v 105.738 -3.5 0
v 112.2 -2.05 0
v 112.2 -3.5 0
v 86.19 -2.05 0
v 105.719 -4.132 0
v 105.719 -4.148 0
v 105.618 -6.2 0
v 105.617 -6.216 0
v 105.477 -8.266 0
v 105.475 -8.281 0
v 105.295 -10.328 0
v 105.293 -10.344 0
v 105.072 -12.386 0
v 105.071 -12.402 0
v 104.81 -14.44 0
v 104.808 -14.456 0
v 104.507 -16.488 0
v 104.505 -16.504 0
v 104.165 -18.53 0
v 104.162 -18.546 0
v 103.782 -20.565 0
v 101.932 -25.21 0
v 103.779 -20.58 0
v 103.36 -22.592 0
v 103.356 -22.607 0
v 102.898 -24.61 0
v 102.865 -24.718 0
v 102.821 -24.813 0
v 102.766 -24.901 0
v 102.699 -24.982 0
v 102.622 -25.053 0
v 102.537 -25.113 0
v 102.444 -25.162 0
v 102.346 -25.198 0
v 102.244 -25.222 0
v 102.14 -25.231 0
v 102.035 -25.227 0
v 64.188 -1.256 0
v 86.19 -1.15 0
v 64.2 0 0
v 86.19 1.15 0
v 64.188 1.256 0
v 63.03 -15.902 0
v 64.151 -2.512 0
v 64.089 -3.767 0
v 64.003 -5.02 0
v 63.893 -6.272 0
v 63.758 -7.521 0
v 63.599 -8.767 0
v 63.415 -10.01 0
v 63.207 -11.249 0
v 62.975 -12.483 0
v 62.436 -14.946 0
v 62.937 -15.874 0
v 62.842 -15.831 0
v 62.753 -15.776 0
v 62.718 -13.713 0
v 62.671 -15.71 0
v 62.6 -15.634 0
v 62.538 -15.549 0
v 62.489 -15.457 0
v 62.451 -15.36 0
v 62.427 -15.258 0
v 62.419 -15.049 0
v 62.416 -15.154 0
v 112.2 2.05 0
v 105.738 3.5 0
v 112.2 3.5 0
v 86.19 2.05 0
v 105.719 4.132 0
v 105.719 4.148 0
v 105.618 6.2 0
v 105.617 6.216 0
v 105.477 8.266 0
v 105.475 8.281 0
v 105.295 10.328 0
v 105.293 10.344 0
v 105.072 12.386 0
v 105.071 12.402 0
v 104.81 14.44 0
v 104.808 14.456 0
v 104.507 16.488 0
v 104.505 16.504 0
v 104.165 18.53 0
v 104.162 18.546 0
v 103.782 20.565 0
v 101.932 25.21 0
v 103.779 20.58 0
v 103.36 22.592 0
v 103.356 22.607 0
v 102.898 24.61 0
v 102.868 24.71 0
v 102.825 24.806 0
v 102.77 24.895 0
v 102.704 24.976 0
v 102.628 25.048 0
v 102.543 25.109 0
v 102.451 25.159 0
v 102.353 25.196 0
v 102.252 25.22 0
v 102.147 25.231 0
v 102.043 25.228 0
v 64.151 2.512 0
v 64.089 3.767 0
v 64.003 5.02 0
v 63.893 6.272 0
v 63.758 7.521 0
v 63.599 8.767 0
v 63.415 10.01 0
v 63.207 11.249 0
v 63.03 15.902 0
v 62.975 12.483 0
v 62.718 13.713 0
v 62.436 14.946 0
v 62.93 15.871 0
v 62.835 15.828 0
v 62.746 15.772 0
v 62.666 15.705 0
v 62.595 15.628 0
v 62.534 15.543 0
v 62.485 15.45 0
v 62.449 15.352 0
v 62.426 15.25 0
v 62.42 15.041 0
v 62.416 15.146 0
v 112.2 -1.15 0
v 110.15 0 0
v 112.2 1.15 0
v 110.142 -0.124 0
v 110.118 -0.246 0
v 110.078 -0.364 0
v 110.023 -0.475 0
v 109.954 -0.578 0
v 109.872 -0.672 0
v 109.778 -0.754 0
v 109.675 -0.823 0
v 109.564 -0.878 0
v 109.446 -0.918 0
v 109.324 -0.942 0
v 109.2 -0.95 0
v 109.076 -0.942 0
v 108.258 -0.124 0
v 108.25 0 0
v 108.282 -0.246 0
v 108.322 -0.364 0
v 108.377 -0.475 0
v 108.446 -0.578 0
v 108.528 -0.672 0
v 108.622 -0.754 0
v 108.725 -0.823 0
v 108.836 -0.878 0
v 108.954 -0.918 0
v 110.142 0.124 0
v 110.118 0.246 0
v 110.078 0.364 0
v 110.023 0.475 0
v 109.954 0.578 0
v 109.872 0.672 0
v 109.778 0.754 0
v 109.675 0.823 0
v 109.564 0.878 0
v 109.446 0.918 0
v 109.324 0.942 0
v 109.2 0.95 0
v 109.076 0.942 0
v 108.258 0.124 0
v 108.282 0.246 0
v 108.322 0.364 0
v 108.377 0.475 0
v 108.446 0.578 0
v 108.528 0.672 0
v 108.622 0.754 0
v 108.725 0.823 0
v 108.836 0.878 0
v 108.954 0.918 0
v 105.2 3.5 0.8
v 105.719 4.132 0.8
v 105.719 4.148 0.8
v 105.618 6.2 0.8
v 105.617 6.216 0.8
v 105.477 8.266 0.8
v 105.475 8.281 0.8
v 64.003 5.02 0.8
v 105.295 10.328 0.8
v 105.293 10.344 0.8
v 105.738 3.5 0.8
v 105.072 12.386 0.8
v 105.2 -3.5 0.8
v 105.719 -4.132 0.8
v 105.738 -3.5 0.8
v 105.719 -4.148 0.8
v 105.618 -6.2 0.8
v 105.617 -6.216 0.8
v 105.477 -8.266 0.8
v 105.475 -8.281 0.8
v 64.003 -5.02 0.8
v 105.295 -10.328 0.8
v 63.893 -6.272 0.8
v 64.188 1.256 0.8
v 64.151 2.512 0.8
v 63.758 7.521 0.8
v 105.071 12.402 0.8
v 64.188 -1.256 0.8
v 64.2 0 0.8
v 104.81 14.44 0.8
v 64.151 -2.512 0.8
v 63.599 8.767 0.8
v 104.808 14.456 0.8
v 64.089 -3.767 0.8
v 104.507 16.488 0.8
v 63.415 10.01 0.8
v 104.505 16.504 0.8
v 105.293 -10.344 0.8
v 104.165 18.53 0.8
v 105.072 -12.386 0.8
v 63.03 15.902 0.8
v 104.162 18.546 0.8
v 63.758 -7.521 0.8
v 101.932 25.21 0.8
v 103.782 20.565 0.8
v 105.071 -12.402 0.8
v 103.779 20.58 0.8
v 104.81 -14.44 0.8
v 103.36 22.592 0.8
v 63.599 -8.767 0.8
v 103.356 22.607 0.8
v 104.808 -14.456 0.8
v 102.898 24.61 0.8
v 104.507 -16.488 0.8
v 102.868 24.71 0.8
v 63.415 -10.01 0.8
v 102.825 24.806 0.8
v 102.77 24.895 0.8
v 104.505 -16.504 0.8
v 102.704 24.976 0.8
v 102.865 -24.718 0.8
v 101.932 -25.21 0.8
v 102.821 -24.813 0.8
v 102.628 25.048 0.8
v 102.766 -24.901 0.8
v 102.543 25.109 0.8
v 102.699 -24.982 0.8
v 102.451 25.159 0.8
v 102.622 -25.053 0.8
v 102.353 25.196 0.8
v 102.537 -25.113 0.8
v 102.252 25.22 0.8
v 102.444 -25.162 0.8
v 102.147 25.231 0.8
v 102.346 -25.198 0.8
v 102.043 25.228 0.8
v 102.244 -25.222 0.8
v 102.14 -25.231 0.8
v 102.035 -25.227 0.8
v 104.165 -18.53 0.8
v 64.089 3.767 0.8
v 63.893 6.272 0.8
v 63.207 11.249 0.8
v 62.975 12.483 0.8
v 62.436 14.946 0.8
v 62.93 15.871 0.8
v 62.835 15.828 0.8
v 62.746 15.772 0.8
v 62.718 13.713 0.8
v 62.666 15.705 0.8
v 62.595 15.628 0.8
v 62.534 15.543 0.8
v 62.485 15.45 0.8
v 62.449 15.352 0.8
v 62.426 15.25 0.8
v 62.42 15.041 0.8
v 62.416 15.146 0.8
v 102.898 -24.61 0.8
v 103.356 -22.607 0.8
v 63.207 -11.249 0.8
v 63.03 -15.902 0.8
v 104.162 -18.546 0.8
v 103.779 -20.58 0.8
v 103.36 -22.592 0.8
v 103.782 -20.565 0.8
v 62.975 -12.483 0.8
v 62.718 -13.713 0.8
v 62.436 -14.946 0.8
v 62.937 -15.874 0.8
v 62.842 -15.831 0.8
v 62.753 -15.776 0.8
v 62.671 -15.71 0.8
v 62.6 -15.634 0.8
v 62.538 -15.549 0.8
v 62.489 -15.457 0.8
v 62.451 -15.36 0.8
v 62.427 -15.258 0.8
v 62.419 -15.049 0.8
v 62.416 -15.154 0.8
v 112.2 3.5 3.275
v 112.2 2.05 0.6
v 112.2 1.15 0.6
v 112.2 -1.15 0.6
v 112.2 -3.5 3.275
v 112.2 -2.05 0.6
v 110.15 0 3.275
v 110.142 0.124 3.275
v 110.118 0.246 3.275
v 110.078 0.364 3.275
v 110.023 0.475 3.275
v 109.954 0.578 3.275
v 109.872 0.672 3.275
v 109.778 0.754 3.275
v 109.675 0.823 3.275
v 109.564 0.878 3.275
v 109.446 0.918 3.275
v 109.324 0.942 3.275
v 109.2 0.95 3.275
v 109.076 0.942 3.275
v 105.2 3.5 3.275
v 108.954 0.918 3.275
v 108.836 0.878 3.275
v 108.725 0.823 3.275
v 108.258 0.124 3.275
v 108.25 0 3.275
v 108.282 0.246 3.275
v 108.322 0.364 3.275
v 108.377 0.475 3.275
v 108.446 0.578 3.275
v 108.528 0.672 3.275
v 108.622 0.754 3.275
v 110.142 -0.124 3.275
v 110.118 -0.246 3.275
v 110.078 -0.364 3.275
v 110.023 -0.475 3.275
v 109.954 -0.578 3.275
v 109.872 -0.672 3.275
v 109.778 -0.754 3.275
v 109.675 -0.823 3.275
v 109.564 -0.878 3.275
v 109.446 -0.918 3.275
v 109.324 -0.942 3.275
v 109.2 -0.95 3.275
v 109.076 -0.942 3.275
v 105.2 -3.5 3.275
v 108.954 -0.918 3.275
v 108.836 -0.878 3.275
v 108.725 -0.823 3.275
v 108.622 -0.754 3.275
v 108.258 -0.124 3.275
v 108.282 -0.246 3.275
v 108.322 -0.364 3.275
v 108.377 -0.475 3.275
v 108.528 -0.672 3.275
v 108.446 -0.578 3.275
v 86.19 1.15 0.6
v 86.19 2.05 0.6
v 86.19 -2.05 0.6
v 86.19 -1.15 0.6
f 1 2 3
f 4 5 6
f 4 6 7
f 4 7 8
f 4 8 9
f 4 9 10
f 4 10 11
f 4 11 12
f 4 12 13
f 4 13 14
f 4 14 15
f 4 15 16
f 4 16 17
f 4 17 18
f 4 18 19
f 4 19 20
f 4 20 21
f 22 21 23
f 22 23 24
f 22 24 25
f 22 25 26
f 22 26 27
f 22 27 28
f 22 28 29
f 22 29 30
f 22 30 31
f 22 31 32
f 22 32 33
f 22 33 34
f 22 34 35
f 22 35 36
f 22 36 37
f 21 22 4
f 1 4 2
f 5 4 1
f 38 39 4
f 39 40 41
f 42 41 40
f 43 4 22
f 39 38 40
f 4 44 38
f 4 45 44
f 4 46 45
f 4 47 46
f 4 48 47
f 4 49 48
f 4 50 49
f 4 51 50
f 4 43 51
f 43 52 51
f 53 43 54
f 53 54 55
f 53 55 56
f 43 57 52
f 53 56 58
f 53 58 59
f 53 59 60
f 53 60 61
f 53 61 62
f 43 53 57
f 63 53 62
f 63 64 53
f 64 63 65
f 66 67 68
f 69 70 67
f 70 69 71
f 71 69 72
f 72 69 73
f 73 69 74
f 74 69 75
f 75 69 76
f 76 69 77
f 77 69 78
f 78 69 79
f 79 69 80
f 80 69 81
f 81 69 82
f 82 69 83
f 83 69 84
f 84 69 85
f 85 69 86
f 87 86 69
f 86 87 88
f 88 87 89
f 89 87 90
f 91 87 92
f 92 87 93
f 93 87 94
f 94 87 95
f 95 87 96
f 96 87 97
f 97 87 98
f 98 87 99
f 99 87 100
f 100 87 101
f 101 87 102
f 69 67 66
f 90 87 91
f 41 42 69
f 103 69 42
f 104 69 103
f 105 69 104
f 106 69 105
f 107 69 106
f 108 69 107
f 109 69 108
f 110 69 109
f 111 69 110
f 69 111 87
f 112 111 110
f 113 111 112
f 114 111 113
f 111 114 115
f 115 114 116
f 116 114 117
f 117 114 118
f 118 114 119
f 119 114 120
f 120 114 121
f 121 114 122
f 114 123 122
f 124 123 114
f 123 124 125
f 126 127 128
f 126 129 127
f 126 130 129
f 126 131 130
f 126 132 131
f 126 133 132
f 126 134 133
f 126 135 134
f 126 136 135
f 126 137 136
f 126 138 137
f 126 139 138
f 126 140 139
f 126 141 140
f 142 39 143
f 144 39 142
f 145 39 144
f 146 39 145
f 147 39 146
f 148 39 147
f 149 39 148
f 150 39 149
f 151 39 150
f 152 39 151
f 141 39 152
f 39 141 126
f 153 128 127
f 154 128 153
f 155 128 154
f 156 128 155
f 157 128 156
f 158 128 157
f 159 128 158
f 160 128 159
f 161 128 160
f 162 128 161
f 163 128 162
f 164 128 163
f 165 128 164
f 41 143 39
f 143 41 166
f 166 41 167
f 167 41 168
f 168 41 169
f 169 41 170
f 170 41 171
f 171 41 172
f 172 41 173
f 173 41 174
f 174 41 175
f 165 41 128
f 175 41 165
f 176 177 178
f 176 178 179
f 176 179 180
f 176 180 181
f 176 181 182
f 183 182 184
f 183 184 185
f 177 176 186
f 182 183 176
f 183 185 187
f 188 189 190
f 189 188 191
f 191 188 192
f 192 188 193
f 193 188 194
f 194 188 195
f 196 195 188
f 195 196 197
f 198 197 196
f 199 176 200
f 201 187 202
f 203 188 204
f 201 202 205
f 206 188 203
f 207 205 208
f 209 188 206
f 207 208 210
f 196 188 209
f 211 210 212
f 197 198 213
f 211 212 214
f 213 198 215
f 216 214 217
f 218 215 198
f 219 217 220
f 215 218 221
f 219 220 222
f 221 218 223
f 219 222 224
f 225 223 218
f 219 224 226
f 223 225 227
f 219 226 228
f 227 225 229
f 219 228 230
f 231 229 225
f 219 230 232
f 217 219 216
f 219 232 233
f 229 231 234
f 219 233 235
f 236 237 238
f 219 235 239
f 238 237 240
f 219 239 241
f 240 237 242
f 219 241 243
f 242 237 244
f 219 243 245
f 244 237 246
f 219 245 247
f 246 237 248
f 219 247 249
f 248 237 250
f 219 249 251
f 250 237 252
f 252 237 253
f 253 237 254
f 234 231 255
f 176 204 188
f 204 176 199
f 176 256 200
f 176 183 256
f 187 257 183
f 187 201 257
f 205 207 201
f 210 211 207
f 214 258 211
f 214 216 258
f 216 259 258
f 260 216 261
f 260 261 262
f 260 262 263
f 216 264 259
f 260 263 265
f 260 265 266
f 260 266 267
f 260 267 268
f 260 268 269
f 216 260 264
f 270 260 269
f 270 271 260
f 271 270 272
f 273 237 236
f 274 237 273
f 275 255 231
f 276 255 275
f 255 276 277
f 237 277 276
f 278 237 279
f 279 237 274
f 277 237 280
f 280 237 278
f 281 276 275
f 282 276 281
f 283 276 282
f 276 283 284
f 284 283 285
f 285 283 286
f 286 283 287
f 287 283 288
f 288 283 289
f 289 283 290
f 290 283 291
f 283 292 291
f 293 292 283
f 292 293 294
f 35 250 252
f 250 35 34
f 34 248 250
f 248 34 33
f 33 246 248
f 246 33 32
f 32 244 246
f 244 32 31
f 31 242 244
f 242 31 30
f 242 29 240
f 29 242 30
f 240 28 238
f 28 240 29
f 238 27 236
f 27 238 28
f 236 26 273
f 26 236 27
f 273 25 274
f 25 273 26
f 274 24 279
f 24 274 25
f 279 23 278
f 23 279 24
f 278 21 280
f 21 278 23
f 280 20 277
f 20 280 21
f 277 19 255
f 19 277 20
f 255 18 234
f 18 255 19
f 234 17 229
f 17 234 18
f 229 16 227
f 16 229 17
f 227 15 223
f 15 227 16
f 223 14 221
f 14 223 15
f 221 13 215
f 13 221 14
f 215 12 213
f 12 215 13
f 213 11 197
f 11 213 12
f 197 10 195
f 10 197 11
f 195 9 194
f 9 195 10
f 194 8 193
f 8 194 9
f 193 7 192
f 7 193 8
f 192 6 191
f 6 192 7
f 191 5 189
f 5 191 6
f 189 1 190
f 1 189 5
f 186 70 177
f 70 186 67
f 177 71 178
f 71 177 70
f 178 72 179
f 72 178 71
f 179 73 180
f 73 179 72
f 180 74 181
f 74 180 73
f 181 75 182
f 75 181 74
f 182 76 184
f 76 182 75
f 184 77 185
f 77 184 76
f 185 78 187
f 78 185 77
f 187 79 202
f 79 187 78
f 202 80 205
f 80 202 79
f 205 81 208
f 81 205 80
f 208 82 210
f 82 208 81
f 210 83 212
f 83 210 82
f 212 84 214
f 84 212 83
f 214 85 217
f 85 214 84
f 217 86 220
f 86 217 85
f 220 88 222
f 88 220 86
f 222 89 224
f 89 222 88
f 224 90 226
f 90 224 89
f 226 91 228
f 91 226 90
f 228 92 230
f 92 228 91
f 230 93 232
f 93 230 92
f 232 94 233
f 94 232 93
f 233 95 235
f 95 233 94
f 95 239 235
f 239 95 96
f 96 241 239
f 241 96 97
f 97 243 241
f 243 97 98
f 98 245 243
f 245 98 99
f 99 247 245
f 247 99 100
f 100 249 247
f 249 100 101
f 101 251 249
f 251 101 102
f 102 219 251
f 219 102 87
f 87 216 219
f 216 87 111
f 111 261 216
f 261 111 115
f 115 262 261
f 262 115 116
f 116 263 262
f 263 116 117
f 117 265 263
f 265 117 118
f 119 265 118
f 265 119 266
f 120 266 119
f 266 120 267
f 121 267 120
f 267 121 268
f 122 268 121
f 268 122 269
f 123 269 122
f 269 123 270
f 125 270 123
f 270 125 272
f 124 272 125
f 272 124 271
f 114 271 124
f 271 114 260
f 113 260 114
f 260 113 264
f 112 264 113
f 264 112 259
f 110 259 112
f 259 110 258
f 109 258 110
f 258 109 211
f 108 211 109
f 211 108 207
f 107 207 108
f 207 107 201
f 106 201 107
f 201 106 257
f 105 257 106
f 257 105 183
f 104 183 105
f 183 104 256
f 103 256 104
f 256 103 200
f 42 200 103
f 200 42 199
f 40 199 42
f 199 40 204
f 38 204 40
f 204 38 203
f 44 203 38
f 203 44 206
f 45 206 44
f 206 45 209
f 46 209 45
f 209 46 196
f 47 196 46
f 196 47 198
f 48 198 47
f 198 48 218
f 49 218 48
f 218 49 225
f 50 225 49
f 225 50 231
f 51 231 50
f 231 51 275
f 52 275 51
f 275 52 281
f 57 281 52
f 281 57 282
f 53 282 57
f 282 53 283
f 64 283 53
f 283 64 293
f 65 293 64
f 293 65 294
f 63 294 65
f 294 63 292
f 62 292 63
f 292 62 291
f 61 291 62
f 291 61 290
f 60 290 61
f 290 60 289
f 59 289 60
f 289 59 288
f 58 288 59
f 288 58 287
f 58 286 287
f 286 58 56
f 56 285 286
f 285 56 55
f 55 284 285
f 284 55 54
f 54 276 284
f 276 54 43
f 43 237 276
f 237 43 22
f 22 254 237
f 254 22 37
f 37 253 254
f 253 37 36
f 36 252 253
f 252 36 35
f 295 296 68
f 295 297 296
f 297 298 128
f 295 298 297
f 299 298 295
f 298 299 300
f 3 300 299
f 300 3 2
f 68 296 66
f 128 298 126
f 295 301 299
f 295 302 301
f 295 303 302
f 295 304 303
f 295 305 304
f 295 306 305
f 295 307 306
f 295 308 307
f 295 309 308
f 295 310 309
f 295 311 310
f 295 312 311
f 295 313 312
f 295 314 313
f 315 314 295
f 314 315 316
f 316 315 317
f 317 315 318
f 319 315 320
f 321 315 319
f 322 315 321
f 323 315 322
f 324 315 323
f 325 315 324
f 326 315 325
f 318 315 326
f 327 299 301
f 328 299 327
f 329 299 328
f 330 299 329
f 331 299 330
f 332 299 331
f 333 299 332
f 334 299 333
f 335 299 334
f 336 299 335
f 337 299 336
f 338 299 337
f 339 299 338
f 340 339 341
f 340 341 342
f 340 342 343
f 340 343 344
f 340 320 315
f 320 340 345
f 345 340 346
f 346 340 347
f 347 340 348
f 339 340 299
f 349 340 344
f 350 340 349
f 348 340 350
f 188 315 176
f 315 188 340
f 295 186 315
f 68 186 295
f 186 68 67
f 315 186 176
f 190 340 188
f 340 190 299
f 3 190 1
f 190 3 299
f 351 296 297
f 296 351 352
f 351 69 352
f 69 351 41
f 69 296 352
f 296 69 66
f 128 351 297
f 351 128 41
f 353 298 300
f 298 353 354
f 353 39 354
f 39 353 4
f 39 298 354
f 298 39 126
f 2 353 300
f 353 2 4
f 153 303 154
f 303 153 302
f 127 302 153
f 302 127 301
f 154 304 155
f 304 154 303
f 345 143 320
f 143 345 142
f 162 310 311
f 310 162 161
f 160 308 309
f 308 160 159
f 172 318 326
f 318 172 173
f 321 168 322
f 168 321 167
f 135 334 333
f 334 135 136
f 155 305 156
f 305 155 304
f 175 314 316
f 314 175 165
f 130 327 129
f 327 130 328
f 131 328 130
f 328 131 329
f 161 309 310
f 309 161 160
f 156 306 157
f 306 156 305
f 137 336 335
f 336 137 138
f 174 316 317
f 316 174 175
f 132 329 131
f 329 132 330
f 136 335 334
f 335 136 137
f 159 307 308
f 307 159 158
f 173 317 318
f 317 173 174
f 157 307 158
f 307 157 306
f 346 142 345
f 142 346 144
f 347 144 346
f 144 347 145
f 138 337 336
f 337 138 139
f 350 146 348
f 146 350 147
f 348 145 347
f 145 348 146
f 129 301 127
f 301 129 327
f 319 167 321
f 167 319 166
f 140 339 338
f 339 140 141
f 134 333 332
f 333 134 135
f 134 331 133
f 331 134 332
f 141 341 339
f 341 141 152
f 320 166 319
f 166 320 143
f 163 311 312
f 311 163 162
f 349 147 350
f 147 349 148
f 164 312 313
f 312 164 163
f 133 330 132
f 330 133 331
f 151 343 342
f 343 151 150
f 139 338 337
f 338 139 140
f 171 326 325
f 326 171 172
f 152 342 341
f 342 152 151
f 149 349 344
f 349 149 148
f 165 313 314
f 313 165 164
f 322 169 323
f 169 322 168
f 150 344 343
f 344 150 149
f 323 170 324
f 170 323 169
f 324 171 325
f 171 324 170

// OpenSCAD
// file: parameters.scad
// =============================================================================
// Gen-CD — nightly 2026-10-14 (physics_scorer, honest magpylib watts)
// Push past Gen-CA on the same arc-nested one-plate architecture: poles out to R86, bobbins r65–105 × 4.95 mm copper. Full-resolution scorer picks this window at ≈8.56 W (386 m, at the wire budget) with a Ø229 stator that still packs; thinner-copper R86 tips (r65–107 × 4.65) need Ø232+ and would not pack. Same 8 bolt-on arcs/rotor + D-flat hub + open-centre stator + in-place bobbin bases that unlocked Gen-CA.
// Clocking 0 deg (magnets N facing S) + D-flat keyed bore + index notch + flip-symmetric hole map.
// Windable 2-piece bobbin; turns = physics_scorer turns_fit; copper only between flanges.
// Steel back-iron: 2× Ø198 × 4.76 mm (3/16") mild-steel discs (steel_backiron_disc.dxf); magnets sit ON the steel
// (through-pockets) -> score with --back-iron. Night 2026-10-14.
// =============================================================================
topology            = "dual_rotor";

// --- Wire / winding (physics_scorer winding-fit) -------------------------------
wire_awg            = 26;
wire_od             = 0.45;     // insulated OD mm (bare 0.405)
fill_realistic      = 0.65;     // insulated-wire area / window (DENSE layered wind with a jig; scorer cap 0.65)
turns               = 370;       // = physics_scorer turns_fit (do NOT raise)
coil_former_type    = "bobbin";
coil_core_inset     = 18.31;     // radial copper build: hub = copper boundary inset by this
wind_build_axial    = 0.0;      // nothing proud of the flanges
wind_build_radial   = 0.0;

// --- Bobbin (base + lid) ---------------------------------------------------------
coil_id_r           = 65.00;    // copper boundary sector
coil_od_r           = 105.00;
span_deg            = 26.91;    // = pitch - 2*asin((wall+0.85)/coil_id_r) -> >=1.2 mm stator web
former_web          = 4.95;     // copper height between flanges (TALL copper: steel keeps Bz up)
flange_t            = 0.80;     // >= 0.8 mm FDM wall rule (tall winds push on the flanges)
wall                = 0.80;     // flange lip beyond copper
former_bare_h       = former_web + 2 * flange_t;
coil_envelope_h     = former_bare_h + 2 * wind_build_axial;
tab_w               = 7.0;
tab_len             = 7.0;
tab_h               = former_bare_h / 2;
pin_d               = 1.9;      // 1.75 mm filament locating pin
coil_mount_r        = coil_od_r + 0.2 + 4.0;
lead_y              = 1.6;
lead_slot_w         = 0.9;
lead_groove_d       = 0.6;

// --- Gap -------------------------------------------------------------------------
run_clear           = 0.50;     // rotor face -> flange
gap_spacer_h        = run_clear + wind_build_axial;
m2m                 = coil_envelope_h + 2 * run_clear;   // rotor face to rotor face (= gap_sleeve length)

// --- Stator ----------------------------------------------------------------------
coil_stations       = 12;
bay_clear           = 0.35;     // 0.35 mm: bobbin BASES print IN PLACE inside the stator bays (print-in-place gap), then pop out
stator_thick        = former_bare_h;                        // bobbins flush both faces
stator_od           = 229.0;
shaft_clear_stator  = 14.0;     // stator is static; gap sleeve OD 12 spins inside
stator_ir           = 59.85;    // ANNULAR stator: open centre (nested one-plate pack); inner rim 4.0 mm

// --- Rotor(s) --------------------------------------------------------------------
magnet_Br           = 1.43;     // N52
magnet_d_large      = 20.0;
magnet_h_large      = 5.0;      // one O20x5 per pocket
magnet_h_small      = 5.0;      // unused: no O5 pockets in this kit
halbach_magnetisation = "none";  // NO O5 assist magnets in this kit (scan: they lower the 4-pole score)
rotor_b_same_axis   = true;     // same-index magnets share one axis: N faces S across the gap
large_pocket_d      = 20.3;
small_pocket_d      = 5.3;
pocket_h            = 5.00;     // THROUGH the carrier: magnet back face sits on the steel disc (FLUSH seat: carrier = magnet height, magnet face level with the rotor face)
large_n             = 8;
R_large             = 86.0;
small_r_list        = [];       // no O5 pockets
carrier_od          = 198.0;
ring_ir             = 72.85;    // RING rotor: PLA magnet ring r ring_ir..carrier_od/2 (steel disc = structural rotor)
hub_flange_od       = 74.0;     // separate rotor_hub flange (inside the ring, flush with the ring face)
csk_d               = 6.6;      // M3 countersunk head pocket (ISO 10642 head 6.0 nominal) on the stator face
csk_depth           = 1.55;     // = (csk_d - m3_clear) / 2: 90 deg cone; head sits 0.3 mm below the face
n_seg               = 8;        // magnet-carrier ARCS per rotor (segmented carrier)
seg_deg             = 360 / n_seg;
seg_start           = -22.5;   // arc edge angle (between pocket 0 and its clamp bolt)
seg_kerf_deg        = 0.4;      // gap between neighbouring arcs on the steel
carrier_thick       = pocket_h;
hub_h               = 12.0;     // > steel_t + insert: radial set-screw clears the steel
hub_od              = 24.0;     // slim hub so the M4 brace rods fit at R~18 inside the coil ring
hub_insert_d        = 4.0;      // M3 heat-set insert, radial, bears on the D-flat
rotor_b_offset_deg  = 0.0;      // CLOCKING: magnets directly opposite
shaft_key           = "dflat";
dflat_depth         = 0.5;      // 8 mm shaft with 0.5 mm flat (7.5 across flat)
index_notch_d       = 3.0;

// --- Steel back-iron (buyable laser-cut) -------------------------------------------
steel_t             = 4.76;      // mild steel thickness (image method ignores it; sized from steel_flux.py so the return path stays well below saturation)
steel_center_hole   = 26.0;     // slips over the rotor hub (OD 24)
steel_od            = carrier_od;   // steel disc OD = rotor carrier OD

// --- Modular MAX interface ----------------------------------------------------------
shaft_bore          = 8.35;
dflat_x             = 4.0 - dflat_depth + (shaft_bore - 8.0) / 2;
bearing_d           = 21.85;
bearing_h           = 7.2;
m3_clear            = 3.5;
bolt_r_inner        = 30.0;     // M3 steel-disc clamp bolts (inside the magnet ring)
bolt_n_inner        = 4;
bolt_inner_angles   = [0, 90, 180, 270];
bolt_r_outer        = 86.0;     // second M3 steel-disc clamp ring
bolt_outer_angles   = [22.5, 67.5, 112.5, 157.5, 202.5, 247.5, 292.5, 337.5];
flange_bolt_r       = 109.5;     // frame rods: OUTSIDE the rotor OD (rotors spin inside them)
flange_bolt_n       = 4;
flange_bolt_offset  = 45.00;    // between coil stations -> never cuts a lead groove/tab
brace_r             = 18.0;
brace_d             = 4.3;      // temporary M4 jack rods (assembly only)
brace_n             = 4;
brace_angles        = [45, 135, 225, 315];          // flip-symmetric

spacer_pad_od       = 14.0;
spacer_pad_id       = m3_clear;
endbell_od          = 229.0;
endbell_thick       = 8.0;
endbell_shaft_clear = 10.0;
collar_h            = 10.0;
standoff_od         = 9.0;
frame_standoff_h    = run_clear + carrier_thick + hub_h + collar_h + 2.0;
sleeve_od           = 12.0;
plate_max_mm        = 410;

$fn = 64;
// main file
// Gen-CD — bobbin LID (top flange + locating tab). Print x12, flange face DOWN on the bed.
// CA-glue onto the hub top BEFORE winding. Tab = lap joint into the stator tab pocket; 1.75 mm filament
// pin through pin hole + stator ledge, trim flush. Lead slots carry both leads flush.
include <parameters.scad>;
$fn = 48;
module sector_2d(r_in, r_out, ang) {
    polygon([
        for (a = [-ang/2 : ang/24 : ang/2]) [r_in*cos(a), r_in*sin(a)],
        for (a = [ang/2 : -ang/24 : -ang/2]) [r_out*cos(a), r_out*sin(a)]
    ]);
}
module footprint_2d() { offset(r=wall) sector_2d(coil_id_r, coil_od_r, span_deg); }
module hub_2d()       { offset(delta=-coil_core_inset) sector_2d(coil_id_r, coil_od_r, span_deg); }

difference() {
    union() {
        linear_extrude(flange_t) footprint_2d();
        translate([coil_od_r + 0.2, -tab_w/2, 0]) cube([tab_len, tab_w, tab_h]);
    }
    translate([coil_mount_r, 0, -0.1]) cylinder(d=pin_d, h=tab_h + 1);
    for (y = [lead_y, -lead_y])
        translate([coil_od_r - coil_core_inset - 0.5, y - lead_slot_w/2, -0.1])
            cube([coil_core_inset + tab_len + 2, lead_slot_w, lead_groove_d + 0.1]);
}
